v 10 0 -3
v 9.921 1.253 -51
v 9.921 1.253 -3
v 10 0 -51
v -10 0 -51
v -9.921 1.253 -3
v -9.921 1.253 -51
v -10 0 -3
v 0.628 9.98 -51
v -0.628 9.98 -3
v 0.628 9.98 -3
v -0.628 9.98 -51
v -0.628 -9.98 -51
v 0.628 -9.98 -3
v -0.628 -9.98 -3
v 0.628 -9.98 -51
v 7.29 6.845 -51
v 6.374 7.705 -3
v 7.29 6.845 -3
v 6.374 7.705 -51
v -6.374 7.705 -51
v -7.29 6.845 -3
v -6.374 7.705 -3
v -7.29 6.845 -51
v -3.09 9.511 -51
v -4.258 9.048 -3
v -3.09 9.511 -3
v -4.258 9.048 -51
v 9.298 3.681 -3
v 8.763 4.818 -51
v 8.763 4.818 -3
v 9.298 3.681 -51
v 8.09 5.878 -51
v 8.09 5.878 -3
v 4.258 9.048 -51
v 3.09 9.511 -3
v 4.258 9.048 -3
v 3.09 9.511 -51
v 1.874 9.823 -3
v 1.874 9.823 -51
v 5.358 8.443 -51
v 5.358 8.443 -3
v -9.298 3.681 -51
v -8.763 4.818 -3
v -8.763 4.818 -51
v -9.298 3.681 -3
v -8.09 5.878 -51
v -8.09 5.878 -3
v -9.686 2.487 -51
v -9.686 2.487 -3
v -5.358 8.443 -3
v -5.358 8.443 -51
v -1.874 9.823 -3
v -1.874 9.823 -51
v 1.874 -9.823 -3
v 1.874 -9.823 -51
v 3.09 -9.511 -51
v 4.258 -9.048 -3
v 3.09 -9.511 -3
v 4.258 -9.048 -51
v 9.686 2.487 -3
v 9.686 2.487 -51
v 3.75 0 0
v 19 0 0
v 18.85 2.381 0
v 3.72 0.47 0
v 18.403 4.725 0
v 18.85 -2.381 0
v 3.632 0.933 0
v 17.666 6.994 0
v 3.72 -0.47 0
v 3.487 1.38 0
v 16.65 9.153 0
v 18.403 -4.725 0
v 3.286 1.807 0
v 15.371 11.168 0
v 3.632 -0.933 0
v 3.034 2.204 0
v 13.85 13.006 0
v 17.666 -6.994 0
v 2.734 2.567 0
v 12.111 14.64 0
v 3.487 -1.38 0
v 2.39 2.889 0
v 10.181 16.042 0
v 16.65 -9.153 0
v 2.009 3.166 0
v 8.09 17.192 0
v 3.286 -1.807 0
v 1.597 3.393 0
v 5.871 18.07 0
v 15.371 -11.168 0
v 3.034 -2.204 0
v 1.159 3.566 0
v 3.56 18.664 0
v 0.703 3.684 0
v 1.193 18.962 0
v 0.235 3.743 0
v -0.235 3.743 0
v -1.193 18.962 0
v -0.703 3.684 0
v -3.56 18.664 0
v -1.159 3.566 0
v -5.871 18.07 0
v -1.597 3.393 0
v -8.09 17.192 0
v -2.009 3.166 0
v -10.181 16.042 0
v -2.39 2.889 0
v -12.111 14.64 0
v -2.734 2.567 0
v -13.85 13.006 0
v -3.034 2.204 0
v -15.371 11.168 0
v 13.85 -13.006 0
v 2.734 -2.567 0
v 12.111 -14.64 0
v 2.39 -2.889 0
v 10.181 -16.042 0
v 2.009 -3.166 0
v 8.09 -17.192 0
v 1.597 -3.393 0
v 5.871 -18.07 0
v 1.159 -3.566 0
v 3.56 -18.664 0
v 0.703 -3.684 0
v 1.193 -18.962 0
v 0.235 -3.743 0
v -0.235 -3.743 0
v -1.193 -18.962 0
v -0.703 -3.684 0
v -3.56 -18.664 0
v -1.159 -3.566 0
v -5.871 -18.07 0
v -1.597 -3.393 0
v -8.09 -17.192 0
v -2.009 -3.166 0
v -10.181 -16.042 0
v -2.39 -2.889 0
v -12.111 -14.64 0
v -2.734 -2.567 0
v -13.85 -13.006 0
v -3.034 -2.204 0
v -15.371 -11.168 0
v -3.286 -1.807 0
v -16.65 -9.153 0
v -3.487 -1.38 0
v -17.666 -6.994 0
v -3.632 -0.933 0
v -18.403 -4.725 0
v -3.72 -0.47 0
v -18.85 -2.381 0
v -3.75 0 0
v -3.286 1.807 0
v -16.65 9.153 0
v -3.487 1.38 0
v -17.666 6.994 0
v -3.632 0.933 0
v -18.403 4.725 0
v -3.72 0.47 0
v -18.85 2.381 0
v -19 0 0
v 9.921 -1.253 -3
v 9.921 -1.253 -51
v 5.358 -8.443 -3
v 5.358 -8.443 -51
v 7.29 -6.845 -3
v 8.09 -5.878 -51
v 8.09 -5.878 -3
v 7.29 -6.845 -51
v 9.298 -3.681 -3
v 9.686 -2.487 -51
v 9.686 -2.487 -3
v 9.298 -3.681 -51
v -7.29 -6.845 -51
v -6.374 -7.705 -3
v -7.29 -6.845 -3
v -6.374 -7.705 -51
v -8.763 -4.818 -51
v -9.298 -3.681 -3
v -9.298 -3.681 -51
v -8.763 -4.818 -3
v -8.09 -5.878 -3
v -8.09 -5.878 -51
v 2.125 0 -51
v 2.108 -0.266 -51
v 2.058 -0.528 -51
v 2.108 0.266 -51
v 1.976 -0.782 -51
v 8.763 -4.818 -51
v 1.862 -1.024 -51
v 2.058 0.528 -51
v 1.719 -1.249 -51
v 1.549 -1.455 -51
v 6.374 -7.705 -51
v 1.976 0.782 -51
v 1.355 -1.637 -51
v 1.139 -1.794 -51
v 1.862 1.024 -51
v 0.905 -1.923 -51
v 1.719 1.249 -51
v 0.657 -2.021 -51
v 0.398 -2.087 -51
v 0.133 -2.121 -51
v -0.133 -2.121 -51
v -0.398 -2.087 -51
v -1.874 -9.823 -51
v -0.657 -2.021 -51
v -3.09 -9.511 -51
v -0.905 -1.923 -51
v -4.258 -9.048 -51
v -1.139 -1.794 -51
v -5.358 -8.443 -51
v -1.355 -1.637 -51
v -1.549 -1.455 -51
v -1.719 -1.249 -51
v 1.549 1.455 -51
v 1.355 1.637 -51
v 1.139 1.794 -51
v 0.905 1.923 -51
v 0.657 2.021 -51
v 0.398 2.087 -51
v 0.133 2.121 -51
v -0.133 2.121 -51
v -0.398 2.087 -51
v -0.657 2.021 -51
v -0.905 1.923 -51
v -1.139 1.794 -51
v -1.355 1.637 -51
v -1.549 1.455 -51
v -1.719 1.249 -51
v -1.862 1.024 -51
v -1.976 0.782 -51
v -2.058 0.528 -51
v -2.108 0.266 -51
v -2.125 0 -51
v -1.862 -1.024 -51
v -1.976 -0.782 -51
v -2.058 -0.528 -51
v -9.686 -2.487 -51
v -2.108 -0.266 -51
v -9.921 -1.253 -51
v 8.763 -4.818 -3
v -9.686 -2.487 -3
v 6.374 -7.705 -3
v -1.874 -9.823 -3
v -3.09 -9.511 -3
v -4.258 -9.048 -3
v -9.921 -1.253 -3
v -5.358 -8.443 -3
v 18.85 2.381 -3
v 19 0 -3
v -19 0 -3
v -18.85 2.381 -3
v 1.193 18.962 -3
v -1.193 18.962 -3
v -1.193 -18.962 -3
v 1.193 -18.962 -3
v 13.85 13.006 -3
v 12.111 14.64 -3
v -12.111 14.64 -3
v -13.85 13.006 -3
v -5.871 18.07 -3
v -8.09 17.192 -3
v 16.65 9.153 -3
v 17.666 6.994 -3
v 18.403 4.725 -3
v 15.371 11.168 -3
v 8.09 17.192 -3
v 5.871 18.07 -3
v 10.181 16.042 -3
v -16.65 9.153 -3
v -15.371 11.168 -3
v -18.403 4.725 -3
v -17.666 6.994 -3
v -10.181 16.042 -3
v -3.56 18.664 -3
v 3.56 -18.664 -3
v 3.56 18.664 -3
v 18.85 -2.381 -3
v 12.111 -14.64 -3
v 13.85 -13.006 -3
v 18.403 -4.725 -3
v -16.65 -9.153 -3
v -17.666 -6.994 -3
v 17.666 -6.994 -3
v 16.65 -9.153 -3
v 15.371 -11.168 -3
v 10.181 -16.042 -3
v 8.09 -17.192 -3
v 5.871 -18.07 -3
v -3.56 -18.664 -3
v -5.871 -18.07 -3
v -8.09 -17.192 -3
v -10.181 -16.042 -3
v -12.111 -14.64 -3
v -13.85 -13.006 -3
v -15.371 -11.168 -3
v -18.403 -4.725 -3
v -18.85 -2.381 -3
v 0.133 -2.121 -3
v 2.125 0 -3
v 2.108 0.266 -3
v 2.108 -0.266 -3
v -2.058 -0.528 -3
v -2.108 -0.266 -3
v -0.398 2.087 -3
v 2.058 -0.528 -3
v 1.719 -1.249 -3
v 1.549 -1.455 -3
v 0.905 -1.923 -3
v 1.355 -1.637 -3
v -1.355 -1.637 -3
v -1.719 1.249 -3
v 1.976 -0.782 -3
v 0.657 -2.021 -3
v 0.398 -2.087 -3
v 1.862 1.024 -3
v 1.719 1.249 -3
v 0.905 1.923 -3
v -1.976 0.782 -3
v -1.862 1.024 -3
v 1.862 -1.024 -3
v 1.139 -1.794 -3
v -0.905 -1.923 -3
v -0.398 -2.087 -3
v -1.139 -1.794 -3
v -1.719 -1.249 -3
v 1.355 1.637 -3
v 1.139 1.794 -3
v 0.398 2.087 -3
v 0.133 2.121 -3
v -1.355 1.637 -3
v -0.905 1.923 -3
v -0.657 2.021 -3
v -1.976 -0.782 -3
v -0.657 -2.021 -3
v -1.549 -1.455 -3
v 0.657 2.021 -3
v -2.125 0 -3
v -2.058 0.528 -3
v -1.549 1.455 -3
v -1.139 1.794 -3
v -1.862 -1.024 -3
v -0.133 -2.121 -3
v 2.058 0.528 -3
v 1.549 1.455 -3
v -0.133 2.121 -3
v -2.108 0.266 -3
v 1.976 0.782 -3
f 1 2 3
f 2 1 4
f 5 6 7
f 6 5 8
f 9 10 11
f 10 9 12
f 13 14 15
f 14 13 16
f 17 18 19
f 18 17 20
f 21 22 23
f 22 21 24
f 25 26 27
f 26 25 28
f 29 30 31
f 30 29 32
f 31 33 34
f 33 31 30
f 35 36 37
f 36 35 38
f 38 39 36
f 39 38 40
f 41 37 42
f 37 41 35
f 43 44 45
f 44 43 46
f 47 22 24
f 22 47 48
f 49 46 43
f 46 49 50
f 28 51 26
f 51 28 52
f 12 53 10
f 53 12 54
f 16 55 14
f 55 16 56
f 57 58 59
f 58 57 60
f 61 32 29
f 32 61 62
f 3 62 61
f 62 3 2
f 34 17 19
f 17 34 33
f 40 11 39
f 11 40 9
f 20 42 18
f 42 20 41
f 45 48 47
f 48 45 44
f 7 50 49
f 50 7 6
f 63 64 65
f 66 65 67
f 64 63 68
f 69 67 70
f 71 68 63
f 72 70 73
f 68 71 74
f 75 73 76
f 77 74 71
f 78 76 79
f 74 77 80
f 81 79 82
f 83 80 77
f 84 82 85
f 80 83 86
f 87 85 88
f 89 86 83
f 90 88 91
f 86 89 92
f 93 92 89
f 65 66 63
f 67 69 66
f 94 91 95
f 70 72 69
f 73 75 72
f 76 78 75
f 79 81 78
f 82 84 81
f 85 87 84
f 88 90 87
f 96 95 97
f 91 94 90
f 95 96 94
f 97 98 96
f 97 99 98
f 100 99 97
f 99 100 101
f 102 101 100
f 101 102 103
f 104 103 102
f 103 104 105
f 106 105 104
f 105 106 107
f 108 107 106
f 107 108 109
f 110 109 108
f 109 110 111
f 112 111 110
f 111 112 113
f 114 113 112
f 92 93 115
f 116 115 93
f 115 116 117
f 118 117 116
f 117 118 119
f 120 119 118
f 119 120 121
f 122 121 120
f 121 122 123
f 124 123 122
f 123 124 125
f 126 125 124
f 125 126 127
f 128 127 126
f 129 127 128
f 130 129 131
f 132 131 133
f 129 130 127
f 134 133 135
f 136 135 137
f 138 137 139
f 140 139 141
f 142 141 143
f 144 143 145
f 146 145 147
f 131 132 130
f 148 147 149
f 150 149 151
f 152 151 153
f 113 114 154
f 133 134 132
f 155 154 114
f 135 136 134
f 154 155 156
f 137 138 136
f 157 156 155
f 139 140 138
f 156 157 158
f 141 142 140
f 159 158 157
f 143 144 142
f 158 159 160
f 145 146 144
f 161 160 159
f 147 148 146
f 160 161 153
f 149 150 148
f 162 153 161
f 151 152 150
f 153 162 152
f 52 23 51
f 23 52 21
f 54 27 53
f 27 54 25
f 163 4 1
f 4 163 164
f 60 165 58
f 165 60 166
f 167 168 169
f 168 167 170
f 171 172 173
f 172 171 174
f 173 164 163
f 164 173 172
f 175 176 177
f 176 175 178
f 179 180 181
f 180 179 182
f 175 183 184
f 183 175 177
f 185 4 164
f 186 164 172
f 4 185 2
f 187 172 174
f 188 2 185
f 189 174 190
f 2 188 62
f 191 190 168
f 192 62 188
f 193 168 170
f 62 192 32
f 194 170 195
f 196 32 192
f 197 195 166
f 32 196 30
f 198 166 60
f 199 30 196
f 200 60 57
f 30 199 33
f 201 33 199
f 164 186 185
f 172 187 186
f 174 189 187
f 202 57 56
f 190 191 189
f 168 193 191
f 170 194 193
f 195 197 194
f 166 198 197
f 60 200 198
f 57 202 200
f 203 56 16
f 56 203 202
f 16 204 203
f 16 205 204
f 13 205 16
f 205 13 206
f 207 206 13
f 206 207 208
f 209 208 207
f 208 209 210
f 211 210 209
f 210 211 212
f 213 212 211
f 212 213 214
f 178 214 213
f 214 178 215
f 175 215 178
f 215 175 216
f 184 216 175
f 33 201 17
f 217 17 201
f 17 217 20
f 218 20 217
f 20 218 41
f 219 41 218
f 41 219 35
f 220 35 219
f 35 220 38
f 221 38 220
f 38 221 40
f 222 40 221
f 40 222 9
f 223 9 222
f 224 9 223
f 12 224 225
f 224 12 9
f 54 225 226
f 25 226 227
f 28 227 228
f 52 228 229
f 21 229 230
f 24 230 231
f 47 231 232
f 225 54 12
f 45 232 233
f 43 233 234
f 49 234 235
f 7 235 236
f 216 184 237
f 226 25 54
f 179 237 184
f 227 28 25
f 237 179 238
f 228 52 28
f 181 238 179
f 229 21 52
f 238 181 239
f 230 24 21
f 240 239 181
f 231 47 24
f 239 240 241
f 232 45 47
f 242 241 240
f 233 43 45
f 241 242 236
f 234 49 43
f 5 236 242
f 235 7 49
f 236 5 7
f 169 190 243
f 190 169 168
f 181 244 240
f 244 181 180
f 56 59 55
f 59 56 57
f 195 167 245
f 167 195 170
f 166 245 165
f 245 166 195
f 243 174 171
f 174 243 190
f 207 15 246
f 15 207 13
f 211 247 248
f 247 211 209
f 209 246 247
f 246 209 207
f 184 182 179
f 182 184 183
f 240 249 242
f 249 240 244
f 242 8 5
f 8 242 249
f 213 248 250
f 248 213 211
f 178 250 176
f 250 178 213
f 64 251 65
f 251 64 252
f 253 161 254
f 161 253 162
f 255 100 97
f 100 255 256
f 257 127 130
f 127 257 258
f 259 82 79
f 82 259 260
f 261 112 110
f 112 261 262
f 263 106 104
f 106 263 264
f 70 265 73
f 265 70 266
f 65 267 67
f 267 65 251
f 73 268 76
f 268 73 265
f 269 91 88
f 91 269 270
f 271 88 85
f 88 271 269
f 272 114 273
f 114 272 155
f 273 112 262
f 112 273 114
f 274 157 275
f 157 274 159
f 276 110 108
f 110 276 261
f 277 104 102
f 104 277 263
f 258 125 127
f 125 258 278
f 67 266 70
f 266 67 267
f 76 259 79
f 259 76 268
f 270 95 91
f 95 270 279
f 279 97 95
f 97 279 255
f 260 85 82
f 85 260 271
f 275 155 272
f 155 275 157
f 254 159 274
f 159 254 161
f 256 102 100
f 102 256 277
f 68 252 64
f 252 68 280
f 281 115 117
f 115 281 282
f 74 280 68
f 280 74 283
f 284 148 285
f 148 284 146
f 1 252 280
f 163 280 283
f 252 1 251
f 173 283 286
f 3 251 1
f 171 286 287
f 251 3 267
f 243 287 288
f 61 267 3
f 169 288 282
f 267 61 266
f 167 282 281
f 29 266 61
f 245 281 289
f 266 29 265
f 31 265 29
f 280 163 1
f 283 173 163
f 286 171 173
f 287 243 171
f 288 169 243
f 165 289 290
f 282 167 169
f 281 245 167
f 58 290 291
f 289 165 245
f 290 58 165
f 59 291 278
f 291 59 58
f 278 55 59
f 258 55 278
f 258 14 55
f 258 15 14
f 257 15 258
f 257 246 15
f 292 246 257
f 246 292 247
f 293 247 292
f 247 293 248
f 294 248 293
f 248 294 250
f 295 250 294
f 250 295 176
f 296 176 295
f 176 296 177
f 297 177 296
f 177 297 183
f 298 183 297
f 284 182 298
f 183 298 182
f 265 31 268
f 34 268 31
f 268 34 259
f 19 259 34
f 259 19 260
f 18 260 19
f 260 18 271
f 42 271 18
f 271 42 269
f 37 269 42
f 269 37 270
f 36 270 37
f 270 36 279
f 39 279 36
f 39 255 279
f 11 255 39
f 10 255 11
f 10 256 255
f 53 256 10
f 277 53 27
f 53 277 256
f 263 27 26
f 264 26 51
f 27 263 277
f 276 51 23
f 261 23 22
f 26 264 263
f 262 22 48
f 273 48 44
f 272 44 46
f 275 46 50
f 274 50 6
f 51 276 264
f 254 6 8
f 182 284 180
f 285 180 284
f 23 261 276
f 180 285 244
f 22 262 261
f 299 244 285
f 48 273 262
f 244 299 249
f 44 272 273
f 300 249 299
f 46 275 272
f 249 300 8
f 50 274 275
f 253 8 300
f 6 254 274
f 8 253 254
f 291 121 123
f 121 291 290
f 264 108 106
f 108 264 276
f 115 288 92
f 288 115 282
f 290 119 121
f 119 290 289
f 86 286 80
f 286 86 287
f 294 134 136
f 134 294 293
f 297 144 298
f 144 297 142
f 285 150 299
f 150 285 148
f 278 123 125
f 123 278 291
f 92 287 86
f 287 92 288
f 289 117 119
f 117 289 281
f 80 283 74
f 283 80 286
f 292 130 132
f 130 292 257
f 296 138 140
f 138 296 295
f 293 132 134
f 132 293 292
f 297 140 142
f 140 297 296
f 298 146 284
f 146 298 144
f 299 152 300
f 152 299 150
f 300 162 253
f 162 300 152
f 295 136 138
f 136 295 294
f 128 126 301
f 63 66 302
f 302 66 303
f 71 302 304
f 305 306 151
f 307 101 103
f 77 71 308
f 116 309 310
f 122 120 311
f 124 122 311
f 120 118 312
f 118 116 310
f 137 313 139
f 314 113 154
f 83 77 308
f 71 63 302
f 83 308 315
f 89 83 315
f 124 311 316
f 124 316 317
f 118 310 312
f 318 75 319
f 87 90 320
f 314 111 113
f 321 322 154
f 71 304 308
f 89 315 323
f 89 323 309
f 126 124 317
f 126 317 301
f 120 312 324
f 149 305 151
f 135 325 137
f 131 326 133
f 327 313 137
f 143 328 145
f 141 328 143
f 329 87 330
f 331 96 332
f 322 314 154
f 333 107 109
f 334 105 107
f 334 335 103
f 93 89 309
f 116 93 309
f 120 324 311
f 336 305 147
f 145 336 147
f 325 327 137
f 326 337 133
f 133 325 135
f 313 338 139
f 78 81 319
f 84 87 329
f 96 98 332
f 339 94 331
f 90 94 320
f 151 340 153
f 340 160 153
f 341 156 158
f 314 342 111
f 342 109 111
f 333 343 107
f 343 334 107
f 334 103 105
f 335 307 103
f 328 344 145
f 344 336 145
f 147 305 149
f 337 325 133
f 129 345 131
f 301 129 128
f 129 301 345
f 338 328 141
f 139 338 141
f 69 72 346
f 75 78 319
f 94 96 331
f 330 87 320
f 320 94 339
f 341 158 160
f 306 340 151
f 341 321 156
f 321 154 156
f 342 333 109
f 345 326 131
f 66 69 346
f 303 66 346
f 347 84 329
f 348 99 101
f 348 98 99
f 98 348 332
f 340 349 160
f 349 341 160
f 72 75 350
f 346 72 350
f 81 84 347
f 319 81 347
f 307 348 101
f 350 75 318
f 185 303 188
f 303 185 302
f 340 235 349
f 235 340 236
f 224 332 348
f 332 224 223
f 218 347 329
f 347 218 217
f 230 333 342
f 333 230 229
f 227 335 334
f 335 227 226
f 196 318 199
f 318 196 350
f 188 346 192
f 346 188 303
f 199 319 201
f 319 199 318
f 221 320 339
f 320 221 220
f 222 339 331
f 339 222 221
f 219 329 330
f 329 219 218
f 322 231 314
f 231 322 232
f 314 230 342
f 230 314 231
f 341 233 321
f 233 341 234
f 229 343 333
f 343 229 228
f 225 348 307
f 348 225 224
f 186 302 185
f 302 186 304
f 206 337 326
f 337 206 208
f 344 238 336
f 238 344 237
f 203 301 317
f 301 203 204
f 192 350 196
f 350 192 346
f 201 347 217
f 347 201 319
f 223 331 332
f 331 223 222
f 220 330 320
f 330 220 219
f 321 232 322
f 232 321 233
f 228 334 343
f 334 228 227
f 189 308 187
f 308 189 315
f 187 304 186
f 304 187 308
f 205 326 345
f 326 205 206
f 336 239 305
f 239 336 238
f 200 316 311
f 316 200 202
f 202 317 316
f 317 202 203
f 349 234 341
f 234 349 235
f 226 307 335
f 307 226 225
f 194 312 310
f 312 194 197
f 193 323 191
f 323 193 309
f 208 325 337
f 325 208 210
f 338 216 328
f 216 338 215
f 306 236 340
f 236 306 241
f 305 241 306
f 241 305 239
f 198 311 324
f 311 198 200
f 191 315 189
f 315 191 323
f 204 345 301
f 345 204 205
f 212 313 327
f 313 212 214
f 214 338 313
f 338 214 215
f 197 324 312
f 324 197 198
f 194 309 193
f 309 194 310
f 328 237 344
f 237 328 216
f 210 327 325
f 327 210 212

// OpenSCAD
$fn = 50;


difference() {
	union() {
		translate(v = [0, 0, -51.0000000000]) {
			cylinder(h = 51, r = 10.0000000000);
		}
		translate(v = [0, 0, -3.0000000000]) {
			cylinder(h = 3, r = 19.0000000000);
		}
	}
	union() {
		translate(v = [0, 0, 0]) {
			rotate(a = [0, 0, 0]) {
				difference() {
					union() {
						#translate(v = [0, 0, -51.0000000000]) {
							cylinder(h = 51, r = 2.0000000000);
						}
						#translate(v = [0, 0, -3]) {
							cylinder(h = 3, r = 10.0000000000, r1 = 2.1250000000, r2 = 3.7500000000);
						}
						#translate(v = [0, 0, -51.0000000000]) {
							cylinder(h = 51, r = 2.1250000000);
						}
						#translate(v = [0, 0, -51.0000000000]) {
							cylinder(h = 51, r = 2.0000000000);
						}
					}
					union();
				}
			}
		}
	}
}
